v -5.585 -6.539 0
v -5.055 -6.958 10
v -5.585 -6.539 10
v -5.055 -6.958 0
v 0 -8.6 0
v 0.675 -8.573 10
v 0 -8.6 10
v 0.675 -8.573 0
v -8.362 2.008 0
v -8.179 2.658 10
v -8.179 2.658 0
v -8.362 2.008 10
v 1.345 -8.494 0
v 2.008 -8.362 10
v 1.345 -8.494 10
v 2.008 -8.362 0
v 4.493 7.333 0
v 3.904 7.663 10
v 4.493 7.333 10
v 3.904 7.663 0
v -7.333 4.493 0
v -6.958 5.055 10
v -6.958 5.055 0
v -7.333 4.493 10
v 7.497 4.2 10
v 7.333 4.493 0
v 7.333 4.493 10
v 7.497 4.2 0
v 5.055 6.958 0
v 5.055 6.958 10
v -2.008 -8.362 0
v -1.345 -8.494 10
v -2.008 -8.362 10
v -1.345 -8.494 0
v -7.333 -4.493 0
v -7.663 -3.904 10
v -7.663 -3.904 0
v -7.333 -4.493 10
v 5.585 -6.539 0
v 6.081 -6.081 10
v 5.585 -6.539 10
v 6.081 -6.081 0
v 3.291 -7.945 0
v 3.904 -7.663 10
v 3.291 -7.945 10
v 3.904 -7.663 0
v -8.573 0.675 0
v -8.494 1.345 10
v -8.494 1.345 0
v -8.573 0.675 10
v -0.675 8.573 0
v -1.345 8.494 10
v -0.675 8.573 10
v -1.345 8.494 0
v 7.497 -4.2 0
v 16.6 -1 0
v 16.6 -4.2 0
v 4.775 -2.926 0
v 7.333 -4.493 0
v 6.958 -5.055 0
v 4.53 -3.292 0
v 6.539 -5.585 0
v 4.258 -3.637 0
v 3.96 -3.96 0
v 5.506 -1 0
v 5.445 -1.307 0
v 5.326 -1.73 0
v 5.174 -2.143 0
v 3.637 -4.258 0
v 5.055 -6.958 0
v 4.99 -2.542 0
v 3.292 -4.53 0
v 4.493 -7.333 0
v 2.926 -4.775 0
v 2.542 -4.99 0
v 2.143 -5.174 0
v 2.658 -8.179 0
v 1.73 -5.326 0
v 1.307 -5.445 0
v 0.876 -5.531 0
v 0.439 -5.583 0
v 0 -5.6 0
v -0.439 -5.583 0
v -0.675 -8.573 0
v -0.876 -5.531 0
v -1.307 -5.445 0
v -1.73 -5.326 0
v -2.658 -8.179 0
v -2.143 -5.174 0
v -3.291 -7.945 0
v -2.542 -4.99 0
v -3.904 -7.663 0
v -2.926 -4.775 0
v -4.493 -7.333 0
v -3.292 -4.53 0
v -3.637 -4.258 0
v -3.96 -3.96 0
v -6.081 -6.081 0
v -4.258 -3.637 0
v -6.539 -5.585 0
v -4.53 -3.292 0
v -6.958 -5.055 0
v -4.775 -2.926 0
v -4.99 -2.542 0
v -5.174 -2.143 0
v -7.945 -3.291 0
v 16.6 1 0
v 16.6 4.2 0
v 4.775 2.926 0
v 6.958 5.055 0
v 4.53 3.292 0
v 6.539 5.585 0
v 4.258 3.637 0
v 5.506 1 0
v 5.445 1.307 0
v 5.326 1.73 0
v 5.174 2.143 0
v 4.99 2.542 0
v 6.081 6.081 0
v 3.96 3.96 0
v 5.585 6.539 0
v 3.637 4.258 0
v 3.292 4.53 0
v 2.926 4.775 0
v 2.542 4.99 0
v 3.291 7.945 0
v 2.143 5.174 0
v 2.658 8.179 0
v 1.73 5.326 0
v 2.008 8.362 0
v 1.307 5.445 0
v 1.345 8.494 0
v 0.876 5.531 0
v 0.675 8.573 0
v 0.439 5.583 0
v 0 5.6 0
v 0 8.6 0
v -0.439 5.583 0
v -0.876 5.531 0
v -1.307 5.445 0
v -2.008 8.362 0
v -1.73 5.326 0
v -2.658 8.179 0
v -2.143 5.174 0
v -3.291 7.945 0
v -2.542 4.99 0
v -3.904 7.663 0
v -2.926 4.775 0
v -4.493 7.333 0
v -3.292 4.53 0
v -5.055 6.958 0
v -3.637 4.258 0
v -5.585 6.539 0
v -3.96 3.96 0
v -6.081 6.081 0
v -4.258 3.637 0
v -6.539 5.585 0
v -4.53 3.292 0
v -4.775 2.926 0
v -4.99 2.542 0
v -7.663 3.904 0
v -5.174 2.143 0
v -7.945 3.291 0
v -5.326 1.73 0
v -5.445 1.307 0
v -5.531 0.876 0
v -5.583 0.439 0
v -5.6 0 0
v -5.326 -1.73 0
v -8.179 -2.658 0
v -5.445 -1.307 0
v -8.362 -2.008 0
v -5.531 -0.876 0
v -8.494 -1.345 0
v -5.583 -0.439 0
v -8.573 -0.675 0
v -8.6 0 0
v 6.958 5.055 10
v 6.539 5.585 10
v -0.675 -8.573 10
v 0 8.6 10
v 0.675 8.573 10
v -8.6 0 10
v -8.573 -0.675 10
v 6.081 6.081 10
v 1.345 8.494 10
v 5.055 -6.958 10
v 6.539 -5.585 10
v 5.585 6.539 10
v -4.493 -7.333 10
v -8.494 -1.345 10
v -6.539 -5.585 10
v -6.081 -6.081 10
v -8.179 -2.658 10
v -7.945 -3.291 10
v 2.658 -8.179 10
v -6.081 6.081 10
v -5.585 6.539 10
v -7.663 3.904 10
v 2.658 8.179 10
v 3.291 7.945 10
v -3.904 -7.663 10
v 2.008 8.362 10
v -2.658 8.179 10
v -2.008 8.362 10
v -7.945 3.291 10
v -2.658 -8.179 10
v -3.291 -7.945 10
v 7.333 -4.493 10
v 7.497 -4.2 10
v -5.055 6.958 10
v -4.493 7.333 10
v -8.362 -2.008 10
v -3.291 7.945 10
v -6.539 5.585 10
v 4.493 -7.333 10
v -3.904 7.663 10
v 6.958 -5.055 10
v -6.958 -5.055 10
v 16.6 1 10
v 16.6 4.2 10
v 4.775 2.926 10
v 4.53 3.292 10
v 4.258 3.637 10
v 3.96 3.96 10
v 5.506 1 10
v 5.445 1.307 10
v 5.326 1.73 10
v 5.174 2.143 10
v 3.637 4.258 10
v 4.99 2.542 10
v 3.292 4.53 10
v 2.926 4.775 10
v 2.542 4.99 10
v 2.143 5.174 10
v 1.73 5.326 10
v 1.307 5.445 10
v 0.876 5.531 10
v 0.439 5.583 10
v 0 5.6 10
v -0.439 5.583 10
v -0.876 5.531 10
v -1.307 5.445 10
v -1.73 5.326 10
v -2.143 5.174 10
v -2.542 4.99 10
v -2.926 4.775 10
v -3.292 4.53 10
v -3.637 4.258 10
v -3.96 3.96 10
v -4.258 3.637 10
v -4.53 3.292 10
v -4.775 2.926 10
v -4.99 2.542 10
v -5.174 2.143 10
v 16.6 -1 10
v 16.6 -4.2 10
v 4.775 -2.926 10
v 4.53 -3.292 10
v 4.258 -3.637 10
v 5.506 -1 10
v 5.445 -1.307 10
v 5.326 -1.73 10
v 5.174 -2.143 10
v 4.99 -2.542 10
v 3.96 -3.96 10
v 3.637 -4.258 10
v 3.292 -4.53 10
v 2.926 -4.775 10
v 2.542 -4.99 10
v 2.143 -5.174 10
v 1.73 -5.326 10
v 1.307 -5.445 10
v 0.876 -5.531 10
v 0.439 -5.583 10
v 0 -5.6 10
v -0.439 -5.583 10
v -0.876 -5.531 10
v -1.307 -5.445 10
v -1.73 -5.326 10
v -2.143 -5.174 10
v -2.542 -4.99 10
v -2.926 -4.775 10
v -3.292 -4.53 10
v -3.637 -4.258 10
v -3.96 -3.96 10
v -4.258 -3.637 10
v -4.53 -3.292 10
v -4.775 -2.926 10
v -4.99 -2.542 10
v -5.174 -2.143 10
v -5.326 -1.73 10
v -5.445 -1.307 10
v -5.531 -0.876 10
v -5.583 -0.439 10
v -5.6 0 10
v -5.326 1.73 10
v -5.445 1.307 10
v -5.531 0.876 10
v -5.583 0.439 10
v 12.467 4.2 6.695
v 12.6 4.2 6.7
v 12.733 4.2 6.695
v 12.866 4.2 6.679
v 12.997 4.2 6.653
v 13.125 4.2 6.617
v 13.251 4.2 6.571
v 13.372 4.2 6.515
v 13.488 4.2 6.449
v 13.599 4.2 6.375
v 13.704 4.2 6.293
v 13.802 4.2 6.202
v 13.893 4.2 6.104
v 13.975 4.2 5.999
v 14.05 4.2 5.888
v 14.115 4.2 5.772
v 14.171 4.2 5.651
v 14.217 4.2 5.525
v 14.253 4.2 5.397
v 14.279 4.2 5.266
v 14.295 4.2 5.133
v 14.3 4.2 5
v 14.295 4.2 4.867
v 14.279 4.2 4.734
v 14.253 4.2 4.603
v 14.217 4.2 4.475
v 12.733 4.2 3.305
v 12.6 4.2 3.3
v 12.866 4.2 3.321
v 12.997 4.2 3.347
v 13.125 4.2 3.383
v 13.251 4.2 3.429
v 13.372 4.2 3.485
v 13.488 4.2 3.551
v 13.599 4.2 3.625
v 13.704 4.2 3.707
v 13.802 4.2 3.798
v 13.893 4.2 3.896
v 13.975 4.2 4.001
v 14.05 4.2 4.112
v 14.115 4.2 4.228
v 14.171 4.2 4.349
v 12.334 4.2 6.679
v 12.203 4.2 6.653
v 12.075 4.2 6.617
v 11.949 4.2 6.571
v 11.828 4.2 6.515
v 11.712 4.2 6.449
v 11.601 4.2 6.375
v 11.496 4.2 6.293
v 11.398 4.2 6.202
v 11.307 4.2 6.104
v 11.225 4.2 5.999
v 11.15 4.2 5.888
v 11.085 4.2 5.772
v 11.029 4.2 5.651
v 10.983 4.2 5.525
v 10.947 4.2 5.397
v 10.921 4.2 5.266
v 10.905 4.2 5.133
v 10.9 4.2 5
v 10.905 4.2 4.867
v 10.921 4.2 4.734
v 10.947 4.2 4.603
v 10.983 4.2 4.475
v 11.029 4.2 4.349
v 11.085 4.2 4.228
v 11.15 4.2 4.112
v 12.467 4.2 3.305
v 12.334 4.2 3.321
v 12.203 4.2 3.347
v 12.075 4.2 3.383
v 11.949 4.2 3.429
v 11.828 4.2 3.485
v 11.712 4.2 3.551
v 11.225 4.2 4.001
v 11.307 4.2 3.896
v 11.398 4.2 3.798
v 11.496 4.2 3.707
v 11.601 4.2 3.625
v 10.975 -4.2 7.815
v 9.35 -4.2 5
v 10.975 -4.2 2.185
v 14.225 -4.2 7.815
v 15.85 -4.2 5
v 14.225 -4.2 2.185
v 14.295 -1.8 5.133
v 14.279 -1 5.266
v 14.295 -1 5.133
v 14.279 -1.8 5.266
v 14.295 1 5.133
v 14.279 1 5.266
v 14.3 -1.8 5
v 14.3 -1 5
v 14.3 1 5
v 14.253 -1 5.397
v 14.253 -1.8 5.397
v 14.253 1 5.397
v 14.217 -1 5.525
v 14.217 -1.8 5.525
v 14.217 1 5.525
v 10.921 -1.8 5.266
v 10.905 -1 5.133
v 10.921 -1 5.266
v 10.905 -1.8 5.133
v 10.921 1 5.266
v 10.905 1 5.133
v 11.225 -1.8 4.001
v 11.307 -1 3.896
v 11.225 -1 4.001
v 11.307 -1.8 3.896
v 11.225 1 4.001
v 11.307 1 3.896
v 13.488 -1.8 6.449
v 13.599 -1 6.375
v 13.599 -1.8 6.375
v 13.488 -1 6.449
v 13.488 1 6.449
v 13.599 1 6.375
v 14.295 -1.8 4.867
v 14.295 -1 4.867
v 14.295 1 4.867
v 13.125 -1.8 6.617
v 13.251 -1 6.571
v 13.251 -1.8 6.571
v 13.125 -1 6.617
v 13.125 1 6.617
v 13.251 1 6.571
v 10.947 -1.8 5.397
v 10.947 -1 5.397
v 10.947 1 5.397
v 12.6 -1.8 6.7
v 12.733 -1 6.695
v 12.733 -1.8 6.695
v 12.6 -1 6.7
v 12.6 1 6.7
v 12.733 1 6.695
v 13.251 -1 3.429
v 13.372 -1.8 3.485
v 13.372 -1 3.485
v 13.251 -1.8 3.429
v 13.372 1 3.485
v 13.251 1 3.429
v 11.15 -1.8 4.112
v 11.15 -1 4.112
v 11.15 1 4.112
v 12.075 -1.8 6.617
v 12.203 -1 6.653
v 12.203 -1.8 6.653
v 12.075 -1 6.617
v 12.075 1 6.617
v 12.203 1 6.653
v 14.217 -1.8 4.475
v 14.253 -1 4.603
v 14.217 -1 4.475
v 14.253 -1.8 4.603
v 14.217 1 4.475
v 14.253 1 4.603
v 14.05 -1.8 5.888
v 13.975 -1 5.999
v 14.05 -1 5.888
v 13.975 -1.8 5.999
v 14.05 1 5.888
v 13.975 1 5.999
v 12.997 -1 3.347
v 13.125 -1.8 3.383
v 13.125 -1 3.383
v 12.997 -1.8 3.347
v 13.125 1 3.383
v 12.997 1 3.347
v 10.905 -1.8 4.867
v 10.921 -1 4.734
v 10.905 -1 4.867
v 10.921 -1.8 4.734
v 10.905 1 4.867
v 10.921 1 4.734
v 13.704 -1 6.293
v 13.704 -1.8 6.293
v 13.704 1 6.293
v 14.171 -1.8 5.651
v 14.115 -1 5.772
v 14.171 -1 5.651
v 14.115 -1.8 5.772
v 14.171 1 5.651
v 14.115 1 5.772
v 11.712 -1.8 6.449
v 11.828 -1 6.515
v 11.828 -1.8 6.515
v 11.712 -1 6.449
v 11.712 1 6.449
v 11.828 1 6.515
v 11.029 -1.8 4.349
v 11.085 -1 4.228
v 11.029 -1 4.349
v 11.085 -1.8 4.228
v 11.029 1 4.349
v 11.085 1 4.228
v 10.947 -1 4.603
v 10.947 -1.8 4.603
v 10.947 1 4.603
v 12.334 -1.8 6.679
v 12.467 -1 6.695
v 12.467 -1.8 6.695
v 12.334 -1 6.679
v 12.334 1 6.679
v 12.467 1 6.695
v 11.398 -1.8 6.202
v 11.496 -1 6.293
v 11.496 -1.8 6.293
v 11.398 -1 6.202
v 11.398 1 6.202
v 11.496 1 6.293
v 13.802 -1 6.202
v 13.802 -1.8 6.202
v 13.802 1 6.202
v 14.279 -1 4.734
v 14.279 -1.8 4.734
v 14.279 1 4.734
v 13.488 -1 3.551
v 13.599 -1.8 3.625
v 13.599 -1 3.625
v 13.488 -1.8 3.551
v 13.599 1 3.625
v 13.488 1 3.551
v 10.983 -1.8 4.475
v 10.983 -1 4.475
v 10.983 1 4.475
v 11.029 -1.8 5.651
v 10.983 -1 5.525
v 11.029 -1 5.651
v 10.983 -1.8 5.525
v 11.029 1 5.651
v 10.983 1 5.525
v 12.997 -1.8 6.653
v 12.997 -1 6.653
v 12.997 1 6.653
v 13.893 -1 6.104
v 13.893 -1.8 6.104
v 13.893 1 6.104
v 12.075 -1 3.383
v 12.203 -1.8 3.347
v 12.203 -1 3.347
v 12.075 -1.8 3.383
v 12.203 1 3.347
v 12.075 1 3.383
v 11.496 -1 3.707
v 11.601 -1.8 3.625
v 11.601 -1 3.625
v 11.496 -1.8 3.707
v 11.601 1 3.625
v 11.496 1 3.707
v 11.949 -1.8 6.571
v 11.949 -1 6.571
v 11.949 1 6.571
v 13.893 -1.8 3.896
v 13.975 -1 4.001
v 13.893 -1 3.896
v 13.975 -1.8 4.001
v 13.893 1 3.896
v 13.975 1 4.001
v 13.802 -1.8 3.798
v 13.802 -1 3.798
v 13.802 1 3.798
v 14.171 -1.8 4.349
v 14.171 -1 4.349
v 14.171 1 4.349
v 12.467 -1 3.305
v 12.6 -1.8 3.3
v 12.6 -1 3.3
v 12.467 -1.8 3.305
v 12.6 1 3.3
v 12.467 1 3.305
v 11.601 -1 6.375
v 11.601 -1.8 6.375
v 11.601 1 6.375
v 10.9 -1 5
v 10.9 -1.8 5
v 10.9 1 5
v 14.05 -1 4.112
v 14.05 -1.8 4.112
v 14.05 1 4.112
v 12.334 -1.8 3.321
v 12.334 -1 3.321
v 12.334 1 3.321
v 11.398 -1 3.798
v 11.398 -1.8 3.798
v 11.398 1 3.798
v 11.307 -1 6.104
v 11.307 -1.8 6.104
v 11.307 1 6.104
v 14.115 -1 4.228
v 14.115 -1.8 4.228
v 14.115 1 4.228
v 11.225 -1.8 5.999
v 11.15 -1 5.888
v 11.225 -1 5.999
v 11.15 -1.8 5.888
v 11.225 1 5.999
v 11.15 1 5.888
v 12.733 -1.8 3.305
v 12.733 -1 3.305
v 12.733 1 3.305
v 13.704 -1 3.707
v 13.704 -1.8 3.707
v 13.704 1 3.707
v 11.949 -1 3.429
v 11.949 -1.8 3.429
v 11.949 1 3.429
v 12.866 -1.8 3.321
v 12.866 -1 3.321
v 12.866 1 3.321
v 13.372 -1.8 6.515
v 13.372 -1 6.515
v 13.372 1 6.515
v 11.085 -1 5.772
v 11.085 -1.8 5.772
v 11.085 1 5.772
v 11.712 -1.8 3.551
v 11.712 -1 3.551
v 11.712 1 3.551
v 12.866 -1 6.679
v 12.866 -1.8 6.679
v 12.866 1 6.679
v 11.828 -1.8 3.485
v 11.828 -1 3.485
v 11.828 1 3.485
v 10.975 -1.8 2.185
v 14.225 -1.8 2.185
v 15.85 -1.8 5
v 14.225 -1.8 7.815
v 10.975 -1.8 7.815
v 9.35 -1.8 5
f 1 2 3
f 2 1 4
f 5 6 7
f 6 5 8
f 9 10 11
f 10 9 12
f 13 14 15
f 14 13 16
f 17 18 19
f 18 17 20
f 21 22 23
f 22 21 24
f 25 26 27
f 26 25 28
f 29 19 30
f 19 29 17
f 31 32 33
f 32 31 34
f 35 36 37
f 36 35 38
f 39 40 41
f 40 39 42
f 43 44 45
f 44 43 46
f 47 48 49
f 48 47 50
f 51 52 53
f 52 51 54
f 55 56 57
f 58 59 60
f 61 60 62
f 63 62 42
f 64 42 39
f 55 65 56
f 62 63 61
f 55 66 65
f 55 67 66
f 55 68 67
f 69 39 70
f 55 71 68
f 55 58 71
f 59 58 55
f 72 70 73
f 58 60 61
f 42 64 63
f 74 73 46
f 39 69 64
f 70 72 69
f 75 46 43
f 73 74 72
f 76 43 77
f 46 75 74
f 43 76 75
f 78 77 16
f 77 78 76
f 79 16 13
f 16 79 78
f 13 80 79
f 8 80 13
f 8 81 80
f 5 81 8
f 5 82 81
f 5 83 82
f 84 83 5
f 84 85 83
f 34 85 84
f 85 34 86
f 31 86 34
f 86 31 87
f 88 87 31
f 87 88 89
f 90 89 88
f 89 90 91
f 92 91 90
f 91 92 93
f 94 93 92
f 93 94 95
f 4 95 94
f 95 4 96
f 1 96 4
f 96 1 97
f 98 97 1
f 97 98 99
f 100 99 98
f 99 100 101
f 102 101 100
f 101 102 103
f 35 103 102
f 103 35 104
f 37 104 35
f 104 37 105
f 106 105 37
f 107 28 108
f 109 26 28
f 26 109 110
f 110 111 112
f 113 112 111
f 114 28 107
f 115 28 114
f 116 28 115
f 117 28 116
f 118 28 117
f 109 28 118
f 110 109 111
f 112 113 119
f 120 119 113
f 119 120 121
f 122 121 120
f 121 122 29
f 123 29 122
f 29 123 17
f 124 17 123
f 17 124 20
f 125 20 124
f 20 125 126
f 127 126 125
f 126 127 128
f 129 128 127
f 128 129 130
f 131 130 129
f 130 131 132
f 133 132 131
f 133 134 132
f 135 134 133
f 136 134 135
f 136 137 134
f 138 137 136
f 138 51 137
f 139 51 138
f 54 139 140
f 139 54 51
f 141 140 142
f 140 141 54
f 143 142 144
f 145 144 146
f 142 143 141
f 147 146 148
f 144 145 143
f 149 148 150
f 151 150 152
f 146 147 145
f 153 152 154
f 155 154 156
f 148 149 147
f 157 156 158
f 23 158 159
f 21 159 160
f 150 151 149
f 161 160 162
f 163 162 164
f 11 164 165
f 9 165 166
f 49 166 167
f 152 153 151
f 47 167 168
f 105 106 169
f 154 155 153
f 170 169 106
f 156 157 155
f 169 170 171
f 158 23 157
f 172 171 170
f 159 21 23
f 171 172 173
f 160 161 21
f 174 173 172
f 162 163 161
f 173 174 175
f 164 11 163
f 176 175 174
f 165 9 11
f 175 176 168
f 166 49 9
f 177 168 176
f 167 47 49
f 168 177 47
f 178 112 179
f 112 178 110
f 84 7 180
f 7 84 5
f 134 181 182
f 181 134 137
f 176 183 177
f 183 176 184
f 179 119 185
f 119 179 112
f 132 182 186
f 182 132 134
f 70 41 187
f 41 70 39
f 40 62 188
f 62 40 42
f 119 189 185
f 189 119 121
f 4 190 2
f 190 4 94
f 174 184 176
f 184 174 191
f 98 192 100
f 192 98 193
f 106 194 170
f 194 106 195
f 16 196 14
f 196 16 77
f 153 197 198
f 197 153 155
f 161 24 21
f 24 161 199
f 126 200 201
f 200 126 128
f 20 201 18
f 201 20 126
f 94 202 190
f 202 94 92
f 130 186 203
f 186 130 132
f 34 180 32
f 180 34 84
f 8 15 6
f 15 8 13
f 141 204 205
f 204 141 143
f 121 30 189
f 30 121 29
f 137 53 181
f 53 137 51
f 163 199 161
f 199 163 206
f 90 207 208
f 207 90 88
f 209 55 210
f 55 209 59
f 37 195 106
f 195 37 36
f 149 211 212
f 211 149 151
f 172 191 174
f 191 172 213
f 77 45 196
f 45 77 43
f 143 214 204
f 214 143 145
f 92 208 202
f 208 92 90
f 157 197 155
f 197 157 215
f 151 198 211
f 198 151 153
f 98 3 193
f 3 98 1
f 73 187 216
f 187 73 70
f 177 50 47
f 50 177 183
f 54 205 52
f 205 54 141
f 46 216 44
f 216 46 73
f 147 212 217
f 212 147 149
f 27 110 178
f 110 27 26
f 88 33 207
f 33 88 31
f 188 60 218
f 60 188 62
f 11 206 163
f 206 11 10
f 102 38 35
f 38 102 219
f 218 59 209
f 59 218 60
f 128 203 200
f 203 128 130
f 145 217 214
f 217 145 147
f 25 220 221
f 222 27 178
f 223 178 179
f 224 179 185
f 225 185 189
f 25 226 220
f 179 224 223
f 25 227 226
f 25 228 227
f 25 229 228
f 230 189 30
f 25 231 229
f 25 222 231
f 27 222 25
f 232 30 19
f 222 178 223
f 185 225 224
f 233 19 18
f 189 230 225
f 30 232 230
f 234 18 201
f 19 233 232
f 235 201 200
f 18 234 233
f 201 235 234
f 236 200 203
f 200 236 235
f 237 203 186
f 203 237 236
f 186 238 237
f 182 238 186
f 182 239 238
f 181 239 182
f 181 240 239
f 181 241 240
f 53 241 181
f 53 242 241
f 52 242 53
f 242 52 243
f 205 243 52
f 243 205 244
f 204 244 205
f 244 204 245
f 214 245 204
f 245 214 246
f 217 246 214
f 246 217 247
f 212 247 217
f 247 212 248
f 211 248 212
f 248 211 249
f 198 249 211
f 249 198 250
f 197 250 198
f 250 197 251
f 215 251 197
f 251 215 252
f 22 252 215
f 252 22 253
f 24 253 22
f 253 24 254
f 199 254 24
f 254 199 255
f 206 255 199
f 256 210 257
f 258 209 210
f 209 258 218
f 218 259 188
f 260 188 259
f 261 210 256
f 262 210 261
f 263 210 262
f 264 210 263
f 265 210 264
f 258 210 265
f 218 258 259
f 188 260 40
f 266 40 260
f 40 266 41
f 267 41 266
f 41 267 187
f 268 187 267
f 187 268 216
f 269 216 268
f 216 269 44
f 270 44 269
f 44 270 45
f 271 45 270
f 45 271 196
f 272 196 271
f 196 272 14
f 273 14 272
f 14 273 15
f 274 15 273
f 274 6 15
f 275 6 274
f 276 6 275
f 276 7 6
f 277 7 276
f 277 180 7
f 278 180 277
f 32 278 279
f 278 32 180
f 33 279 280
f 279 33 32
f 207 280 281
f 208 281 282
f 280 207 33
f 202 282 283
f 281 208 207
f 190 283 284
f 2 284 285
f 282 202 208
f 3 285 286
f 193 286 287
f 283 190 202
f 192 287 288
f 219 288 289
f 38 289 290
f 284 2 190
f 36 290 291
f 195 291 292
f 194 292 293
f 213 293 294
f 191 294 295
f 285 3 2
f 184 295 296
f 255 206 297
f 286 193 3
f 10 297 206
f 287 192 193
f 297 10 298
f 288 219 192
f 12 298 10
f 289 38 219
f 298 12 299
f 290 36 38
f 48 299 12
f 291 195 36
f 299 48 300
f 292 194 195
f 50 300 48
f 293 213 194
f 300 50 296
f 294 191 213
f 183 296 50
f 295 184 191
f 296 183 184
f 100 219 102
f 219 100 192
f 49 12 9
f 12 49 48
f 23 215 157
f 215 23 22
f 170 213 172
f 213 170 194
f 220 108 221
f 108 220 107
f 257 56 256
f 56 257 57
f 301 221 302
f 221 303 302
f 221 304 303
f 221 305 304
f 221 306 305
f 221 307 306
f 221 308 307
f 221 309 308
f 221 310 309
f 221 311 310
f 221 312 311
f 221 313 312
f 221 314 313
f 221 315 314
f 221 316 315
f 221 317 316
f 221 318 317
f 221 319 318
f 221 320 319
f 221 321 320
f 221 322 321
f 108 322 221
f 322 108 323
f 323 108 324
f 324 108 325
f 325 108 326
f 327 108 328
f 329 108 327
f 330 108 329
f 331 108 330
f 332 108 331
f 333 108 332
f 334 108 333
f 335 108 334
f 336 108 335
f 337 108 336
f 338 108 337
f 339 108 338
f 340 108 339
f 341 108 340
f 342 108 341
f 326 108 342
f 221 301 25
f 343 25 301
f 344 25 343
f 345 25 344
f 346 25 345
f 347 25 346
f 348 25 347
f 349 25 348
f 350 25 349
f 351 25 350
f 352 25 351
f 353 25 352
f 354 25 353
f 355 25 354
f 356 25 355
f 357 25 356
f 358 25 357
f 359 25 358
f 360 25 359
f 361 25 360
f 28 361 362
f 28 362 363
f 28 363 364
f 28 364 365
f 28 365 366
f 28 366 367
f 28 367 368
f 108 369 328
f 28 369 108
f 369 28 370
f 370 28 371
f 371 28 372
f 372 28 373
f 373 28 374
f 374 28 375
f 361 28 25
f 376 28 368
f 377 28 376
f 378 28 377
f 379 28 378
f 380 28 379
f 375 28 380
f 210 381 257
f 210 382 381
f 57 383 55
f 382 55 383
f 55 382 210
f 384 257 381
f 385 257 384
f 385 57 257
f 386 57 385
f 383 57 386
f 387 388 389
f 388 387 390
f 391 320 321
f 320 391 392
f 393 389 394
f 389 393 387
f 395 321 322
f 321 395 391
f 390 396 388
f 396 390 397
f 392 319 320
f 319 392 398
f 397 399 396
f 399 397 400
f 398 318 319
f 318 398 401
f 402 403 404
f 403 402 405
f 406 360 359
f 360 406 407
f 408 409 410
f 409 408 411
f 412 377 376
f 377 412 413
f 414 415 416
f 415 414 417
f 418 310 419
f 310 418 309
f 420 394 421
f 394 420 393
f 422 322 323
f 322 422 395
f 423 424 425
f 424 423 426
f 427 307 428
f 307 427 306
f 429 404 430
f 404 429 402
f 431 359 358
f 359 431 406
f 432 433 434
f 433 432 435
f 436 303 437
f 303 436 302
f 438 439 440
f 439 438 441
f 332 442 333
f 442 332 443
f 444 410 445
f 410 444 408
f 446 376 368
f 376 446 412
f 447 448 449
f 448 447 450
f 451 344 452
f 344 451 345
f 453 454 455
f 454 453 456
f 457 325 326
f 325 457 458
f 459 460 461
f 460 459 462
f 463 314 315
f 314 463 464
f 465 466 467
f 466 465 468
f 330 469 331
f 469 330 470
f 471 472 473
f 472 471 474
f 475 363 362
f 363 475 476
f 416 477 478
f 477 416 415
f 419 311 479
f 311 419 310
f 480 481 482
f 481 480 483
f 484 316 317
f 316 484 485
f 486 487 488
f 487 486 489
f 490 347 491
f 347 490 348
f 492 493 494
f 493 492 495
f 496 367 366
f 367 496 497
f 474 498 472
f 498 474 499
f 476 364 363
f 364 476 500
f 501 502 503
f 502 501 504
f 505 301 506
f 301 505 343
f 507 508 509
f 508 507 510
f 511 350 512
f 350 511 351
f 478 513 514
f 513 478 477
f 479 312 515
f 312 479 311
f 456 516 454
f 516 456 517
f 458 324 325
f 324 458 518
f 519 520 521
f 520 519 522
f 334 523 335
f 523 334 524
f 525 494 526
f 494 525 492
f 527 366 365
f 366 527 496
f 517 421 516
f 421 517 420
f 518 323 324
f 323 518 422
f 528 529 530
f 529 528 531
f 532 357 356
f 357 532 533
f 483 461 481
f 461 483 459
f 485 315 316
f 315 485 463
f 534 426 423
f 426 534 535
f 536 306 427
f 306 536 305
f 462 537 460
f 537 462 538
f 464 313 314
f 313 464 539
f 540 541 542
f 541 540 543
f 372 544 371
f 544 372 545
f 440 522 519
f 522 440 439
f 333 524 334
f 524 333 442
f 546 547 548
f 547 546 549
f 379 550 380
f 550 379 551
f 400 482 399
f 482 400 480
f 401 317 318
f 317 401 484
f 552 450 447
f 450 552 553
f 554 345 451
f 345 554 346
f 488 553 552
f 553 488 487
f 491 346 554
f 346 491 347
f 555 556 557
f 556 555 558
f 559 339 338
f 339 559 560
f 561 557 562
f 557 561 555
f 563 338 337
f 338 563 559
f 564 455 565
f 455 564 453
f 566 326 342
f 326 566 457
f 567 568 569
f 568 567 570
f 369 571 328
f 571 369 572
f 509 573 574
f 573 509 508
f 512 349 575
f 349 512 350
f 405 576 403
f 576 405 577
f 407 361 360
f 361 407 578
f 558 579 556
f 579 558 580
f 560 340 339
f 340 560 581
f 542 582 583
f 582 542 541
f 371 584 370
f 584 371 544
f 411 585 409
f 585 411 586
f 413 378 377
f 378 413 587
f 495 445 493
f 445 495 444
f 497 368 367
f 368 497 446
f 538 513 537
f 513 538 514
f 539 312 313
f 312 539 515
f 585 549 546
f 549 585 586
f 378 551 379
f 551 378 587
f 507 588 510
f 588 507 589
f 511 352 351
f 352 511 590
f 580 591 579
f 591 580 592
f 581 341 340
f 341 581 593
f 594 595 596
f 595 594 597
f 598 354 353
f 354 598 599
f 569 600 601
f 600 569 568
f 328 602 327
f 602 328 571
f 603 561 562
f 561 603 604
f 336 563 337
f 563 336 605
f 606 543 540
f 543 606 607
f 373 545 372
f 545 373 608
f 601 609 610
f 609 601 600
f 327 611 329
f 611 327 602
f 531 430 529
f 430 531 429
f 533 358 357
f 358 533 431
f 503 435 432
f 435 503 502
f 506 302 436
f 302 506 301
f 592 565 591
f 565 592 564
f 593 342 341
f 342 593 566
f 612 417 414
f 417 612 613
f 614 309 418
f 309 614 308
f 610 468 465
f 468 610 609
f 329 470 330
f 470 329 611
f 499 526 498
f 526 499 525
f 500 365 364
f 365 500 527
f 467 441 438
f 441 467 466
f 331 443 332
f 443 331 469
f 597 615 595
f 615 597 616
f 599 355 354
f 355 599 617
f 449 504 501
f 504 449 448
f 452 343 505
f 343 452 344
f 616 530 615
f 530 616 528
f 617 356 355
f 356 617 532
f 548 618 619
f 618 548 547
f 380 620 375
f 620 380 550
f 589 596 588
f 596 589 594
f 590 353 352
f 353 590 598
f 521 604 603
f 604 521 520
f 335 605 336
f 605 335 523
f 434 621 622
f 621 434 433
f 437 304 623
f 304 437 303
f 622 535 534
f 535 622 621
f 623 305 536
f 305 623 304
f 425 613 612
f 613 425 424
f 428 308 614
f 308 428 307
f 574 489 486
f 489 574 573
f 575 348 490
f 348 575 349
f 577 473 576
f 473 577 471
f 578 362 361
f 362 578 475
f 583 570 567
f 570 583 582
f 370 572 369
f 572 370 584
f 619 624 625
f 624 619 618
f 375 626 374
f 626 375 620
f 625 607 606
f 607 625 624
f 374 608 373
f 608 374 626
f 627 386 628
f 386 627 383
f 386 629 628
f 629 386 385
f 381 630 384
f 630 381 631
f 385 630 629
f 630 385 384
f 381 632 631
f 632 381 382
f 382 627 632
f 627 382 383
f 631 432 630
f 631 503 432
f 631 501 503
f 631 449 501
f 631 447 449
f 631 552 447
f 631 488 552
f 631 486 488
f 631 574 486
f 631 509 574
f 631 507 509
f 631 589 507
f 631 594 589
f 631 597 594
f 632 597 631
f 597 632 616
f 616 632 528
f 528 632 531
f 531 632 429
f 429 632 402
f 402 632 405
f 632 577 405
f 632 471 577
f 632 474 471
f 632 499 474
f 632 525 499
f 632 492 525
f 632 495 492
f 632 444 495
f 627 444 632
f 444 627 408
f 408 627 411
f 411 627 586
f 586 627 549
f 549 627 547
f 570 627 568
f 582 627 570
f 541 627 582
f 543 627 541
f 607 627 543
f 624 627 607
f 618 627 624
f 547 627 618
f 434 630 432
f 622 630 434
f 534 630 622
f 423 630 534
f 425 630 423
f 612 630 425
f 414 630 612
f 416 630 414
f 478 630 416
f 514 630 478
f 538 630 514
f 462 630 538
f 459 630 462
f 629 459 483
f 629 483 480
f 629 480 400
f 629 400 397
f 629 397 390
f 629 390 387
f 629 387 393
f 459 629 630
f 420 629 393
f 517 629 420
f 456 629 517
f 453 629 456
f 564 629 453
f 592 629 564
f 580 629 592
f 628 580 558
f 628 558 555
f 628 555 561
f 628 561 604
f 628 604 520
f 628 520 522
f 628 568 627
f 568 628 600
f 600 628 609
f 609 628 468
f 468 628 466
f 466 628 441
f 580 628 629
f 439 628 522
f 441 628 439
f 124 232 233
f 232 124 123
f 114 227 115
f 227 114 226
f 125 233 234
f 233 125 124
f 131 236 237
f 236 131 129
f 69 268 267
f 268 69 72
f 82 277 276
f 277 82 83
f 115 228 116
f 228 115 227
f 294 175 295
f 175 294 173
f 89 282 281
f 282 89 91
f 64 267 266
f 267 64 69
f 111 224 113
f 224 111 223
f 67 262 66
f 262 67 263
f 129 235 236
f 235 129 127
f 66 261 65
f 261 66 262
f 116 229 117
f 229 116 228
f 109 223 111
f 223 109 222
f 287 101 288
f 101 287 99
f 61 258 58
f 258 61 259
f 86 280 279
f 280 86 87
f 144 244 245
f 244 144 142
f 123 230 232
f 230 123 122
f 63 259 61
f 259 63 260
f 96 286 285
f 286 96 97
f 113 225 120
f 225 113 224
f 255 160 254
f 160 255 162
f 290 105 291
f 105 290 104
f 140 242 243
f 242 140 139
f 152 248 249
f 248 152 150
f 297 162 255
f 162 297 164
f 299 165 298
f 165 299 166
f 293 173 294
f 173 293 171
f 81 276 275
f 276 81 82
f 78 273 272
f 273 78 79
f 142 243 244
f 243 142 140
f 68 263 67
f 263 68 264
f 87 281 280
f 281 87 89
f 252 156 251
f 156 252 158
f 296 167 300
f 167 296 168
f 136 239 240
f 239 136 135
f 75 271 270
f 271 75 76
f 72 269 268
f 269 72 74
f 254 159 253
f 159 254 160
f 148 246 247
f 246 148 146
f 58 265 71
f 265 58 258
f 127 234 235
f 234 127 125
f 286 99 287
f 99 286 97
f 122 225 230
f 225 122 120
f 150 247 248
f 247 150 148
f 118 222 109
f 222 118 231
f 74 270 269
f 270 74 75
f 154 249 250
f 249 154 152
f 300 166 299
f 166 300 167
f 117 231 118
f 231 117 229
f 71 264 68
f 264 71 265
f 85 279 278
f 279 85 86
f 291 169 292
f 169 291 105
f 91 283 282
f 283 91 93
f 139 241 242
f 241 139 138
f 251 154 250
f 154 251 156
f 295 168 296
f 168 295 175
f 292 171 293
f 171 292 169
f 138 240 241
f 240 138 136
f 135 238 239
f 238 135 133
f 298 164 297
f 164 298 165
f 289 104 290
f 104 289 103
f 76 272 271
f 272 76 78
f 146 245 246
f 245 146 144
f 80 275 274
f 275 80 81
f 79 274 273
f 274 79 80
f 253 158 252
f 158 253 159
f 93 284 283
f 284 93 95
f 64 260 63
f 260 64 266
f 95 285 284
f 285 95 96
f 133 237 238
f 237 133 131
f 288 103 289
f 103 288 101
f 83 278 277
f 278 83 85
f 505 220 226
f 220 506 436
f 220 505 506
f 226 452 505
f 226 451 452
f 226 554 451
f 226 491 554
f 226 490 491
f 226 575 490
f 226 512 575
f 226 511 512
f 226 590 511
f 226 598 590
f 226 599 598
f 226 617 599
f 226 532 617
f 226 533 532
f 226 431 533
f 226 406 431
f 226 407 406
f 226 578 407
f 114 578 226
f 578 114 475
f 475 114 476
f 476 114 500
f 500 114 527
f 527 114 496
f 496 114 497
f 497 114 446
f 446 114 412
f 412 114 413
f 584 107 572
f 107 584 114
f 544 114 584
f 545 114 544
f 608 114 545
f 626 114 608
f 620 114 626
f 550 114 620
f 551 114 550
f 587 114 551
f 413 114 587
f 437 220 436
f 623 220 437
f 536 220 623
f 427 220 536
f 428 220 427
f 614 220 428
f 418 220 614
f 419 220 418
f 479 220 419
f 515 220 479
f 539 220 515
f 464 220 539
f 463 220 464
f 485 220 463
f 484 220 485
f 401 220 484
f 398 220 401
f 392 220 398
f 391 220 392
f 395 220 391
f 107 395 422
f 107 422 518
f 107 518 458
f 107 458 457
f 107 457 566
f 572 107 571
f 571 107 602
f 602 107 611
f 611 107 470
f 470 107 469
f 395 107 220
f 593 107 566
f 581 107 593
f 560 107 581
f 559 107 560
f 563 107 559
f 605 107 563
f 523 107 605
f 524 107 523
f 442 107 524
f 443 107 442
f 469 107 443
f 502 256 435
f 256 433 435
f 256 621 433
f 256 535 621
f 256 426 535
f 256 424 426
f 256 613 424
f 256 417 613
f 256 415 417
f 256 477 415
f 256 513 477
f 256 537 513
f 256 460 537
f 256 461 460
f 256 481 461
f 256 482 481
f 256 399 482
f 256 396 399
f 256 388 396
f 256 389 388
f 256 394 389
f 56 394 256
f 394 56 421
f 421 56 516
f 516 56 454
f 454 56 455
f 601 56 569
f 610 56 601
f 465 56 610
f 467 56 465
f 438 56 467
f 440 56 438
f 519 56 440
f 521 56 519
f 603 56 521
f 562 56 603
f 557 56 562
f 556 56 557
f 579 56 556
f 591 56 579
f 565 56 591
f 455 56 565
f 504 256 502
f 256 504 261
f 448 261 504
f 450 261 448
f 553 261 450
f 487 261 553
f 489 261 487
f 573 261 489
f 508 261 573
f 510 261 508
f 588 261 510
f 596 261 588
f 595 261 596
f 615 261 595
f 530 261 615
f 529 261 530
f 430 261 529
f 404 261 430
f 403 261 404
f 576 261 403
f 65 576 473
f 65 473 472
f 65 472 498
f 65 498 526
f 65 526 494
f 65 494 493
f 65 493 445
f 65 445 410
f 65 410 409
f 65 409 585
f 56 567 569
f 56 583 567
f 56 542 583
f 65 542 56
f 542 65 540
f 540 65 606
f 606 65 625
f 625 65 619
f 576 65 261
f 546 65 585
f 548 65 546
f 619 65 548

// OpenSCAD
// FamilyHub blind tilt - wand collar test (print second, ~10 min, no supports, 0.2 mm layers).
// A split ring that clamps the top of the wand with one M3 x 12 screw + nut. Wand measured with the gauge:
// too big for the 10 hole, loose in the 11 hole -> about 10.5-11 mm. The slot lets this close down from 11.2 to ~10.2.
// Test: clip it on the wand, tighten until you can twist the wand by turning the ring without it slipping.
$fn = 80;
bore = 11.2;        // open size; the screw squeezes it smaller
wall = 3;
h = 10;
slot = 2;           // gap the screw closes
ear = 8;            // clamp ear length past the ring
od = bore + 2 * wall;
difference() {
  union() {
    cylinder(d = od, h = h);
    translate([0, -(slot / 2 + 3.2), 0]) cube([od / 2 + ear, slot + 6.4, h]);     // clamp ears
  }
  translate([0, 0, -1]) cylinder(d = bore, h = h + 2);
  translate([0, -slot / 2, -1]) cube([od, slot, h + 2]);                           // split
  translate([od / 2 + ear / 2, 0, h / 2]) rotate([90, 0, 0]) {
    cylinder(d = 3.4, h = 30, center = true);                                      // M3 clearance
    translate([0, 0, slot / 2 + 3.2 - 2.4]) cylinder(d = 6.5, h = 5, $fn = 6);     // nut trap
  }
}
